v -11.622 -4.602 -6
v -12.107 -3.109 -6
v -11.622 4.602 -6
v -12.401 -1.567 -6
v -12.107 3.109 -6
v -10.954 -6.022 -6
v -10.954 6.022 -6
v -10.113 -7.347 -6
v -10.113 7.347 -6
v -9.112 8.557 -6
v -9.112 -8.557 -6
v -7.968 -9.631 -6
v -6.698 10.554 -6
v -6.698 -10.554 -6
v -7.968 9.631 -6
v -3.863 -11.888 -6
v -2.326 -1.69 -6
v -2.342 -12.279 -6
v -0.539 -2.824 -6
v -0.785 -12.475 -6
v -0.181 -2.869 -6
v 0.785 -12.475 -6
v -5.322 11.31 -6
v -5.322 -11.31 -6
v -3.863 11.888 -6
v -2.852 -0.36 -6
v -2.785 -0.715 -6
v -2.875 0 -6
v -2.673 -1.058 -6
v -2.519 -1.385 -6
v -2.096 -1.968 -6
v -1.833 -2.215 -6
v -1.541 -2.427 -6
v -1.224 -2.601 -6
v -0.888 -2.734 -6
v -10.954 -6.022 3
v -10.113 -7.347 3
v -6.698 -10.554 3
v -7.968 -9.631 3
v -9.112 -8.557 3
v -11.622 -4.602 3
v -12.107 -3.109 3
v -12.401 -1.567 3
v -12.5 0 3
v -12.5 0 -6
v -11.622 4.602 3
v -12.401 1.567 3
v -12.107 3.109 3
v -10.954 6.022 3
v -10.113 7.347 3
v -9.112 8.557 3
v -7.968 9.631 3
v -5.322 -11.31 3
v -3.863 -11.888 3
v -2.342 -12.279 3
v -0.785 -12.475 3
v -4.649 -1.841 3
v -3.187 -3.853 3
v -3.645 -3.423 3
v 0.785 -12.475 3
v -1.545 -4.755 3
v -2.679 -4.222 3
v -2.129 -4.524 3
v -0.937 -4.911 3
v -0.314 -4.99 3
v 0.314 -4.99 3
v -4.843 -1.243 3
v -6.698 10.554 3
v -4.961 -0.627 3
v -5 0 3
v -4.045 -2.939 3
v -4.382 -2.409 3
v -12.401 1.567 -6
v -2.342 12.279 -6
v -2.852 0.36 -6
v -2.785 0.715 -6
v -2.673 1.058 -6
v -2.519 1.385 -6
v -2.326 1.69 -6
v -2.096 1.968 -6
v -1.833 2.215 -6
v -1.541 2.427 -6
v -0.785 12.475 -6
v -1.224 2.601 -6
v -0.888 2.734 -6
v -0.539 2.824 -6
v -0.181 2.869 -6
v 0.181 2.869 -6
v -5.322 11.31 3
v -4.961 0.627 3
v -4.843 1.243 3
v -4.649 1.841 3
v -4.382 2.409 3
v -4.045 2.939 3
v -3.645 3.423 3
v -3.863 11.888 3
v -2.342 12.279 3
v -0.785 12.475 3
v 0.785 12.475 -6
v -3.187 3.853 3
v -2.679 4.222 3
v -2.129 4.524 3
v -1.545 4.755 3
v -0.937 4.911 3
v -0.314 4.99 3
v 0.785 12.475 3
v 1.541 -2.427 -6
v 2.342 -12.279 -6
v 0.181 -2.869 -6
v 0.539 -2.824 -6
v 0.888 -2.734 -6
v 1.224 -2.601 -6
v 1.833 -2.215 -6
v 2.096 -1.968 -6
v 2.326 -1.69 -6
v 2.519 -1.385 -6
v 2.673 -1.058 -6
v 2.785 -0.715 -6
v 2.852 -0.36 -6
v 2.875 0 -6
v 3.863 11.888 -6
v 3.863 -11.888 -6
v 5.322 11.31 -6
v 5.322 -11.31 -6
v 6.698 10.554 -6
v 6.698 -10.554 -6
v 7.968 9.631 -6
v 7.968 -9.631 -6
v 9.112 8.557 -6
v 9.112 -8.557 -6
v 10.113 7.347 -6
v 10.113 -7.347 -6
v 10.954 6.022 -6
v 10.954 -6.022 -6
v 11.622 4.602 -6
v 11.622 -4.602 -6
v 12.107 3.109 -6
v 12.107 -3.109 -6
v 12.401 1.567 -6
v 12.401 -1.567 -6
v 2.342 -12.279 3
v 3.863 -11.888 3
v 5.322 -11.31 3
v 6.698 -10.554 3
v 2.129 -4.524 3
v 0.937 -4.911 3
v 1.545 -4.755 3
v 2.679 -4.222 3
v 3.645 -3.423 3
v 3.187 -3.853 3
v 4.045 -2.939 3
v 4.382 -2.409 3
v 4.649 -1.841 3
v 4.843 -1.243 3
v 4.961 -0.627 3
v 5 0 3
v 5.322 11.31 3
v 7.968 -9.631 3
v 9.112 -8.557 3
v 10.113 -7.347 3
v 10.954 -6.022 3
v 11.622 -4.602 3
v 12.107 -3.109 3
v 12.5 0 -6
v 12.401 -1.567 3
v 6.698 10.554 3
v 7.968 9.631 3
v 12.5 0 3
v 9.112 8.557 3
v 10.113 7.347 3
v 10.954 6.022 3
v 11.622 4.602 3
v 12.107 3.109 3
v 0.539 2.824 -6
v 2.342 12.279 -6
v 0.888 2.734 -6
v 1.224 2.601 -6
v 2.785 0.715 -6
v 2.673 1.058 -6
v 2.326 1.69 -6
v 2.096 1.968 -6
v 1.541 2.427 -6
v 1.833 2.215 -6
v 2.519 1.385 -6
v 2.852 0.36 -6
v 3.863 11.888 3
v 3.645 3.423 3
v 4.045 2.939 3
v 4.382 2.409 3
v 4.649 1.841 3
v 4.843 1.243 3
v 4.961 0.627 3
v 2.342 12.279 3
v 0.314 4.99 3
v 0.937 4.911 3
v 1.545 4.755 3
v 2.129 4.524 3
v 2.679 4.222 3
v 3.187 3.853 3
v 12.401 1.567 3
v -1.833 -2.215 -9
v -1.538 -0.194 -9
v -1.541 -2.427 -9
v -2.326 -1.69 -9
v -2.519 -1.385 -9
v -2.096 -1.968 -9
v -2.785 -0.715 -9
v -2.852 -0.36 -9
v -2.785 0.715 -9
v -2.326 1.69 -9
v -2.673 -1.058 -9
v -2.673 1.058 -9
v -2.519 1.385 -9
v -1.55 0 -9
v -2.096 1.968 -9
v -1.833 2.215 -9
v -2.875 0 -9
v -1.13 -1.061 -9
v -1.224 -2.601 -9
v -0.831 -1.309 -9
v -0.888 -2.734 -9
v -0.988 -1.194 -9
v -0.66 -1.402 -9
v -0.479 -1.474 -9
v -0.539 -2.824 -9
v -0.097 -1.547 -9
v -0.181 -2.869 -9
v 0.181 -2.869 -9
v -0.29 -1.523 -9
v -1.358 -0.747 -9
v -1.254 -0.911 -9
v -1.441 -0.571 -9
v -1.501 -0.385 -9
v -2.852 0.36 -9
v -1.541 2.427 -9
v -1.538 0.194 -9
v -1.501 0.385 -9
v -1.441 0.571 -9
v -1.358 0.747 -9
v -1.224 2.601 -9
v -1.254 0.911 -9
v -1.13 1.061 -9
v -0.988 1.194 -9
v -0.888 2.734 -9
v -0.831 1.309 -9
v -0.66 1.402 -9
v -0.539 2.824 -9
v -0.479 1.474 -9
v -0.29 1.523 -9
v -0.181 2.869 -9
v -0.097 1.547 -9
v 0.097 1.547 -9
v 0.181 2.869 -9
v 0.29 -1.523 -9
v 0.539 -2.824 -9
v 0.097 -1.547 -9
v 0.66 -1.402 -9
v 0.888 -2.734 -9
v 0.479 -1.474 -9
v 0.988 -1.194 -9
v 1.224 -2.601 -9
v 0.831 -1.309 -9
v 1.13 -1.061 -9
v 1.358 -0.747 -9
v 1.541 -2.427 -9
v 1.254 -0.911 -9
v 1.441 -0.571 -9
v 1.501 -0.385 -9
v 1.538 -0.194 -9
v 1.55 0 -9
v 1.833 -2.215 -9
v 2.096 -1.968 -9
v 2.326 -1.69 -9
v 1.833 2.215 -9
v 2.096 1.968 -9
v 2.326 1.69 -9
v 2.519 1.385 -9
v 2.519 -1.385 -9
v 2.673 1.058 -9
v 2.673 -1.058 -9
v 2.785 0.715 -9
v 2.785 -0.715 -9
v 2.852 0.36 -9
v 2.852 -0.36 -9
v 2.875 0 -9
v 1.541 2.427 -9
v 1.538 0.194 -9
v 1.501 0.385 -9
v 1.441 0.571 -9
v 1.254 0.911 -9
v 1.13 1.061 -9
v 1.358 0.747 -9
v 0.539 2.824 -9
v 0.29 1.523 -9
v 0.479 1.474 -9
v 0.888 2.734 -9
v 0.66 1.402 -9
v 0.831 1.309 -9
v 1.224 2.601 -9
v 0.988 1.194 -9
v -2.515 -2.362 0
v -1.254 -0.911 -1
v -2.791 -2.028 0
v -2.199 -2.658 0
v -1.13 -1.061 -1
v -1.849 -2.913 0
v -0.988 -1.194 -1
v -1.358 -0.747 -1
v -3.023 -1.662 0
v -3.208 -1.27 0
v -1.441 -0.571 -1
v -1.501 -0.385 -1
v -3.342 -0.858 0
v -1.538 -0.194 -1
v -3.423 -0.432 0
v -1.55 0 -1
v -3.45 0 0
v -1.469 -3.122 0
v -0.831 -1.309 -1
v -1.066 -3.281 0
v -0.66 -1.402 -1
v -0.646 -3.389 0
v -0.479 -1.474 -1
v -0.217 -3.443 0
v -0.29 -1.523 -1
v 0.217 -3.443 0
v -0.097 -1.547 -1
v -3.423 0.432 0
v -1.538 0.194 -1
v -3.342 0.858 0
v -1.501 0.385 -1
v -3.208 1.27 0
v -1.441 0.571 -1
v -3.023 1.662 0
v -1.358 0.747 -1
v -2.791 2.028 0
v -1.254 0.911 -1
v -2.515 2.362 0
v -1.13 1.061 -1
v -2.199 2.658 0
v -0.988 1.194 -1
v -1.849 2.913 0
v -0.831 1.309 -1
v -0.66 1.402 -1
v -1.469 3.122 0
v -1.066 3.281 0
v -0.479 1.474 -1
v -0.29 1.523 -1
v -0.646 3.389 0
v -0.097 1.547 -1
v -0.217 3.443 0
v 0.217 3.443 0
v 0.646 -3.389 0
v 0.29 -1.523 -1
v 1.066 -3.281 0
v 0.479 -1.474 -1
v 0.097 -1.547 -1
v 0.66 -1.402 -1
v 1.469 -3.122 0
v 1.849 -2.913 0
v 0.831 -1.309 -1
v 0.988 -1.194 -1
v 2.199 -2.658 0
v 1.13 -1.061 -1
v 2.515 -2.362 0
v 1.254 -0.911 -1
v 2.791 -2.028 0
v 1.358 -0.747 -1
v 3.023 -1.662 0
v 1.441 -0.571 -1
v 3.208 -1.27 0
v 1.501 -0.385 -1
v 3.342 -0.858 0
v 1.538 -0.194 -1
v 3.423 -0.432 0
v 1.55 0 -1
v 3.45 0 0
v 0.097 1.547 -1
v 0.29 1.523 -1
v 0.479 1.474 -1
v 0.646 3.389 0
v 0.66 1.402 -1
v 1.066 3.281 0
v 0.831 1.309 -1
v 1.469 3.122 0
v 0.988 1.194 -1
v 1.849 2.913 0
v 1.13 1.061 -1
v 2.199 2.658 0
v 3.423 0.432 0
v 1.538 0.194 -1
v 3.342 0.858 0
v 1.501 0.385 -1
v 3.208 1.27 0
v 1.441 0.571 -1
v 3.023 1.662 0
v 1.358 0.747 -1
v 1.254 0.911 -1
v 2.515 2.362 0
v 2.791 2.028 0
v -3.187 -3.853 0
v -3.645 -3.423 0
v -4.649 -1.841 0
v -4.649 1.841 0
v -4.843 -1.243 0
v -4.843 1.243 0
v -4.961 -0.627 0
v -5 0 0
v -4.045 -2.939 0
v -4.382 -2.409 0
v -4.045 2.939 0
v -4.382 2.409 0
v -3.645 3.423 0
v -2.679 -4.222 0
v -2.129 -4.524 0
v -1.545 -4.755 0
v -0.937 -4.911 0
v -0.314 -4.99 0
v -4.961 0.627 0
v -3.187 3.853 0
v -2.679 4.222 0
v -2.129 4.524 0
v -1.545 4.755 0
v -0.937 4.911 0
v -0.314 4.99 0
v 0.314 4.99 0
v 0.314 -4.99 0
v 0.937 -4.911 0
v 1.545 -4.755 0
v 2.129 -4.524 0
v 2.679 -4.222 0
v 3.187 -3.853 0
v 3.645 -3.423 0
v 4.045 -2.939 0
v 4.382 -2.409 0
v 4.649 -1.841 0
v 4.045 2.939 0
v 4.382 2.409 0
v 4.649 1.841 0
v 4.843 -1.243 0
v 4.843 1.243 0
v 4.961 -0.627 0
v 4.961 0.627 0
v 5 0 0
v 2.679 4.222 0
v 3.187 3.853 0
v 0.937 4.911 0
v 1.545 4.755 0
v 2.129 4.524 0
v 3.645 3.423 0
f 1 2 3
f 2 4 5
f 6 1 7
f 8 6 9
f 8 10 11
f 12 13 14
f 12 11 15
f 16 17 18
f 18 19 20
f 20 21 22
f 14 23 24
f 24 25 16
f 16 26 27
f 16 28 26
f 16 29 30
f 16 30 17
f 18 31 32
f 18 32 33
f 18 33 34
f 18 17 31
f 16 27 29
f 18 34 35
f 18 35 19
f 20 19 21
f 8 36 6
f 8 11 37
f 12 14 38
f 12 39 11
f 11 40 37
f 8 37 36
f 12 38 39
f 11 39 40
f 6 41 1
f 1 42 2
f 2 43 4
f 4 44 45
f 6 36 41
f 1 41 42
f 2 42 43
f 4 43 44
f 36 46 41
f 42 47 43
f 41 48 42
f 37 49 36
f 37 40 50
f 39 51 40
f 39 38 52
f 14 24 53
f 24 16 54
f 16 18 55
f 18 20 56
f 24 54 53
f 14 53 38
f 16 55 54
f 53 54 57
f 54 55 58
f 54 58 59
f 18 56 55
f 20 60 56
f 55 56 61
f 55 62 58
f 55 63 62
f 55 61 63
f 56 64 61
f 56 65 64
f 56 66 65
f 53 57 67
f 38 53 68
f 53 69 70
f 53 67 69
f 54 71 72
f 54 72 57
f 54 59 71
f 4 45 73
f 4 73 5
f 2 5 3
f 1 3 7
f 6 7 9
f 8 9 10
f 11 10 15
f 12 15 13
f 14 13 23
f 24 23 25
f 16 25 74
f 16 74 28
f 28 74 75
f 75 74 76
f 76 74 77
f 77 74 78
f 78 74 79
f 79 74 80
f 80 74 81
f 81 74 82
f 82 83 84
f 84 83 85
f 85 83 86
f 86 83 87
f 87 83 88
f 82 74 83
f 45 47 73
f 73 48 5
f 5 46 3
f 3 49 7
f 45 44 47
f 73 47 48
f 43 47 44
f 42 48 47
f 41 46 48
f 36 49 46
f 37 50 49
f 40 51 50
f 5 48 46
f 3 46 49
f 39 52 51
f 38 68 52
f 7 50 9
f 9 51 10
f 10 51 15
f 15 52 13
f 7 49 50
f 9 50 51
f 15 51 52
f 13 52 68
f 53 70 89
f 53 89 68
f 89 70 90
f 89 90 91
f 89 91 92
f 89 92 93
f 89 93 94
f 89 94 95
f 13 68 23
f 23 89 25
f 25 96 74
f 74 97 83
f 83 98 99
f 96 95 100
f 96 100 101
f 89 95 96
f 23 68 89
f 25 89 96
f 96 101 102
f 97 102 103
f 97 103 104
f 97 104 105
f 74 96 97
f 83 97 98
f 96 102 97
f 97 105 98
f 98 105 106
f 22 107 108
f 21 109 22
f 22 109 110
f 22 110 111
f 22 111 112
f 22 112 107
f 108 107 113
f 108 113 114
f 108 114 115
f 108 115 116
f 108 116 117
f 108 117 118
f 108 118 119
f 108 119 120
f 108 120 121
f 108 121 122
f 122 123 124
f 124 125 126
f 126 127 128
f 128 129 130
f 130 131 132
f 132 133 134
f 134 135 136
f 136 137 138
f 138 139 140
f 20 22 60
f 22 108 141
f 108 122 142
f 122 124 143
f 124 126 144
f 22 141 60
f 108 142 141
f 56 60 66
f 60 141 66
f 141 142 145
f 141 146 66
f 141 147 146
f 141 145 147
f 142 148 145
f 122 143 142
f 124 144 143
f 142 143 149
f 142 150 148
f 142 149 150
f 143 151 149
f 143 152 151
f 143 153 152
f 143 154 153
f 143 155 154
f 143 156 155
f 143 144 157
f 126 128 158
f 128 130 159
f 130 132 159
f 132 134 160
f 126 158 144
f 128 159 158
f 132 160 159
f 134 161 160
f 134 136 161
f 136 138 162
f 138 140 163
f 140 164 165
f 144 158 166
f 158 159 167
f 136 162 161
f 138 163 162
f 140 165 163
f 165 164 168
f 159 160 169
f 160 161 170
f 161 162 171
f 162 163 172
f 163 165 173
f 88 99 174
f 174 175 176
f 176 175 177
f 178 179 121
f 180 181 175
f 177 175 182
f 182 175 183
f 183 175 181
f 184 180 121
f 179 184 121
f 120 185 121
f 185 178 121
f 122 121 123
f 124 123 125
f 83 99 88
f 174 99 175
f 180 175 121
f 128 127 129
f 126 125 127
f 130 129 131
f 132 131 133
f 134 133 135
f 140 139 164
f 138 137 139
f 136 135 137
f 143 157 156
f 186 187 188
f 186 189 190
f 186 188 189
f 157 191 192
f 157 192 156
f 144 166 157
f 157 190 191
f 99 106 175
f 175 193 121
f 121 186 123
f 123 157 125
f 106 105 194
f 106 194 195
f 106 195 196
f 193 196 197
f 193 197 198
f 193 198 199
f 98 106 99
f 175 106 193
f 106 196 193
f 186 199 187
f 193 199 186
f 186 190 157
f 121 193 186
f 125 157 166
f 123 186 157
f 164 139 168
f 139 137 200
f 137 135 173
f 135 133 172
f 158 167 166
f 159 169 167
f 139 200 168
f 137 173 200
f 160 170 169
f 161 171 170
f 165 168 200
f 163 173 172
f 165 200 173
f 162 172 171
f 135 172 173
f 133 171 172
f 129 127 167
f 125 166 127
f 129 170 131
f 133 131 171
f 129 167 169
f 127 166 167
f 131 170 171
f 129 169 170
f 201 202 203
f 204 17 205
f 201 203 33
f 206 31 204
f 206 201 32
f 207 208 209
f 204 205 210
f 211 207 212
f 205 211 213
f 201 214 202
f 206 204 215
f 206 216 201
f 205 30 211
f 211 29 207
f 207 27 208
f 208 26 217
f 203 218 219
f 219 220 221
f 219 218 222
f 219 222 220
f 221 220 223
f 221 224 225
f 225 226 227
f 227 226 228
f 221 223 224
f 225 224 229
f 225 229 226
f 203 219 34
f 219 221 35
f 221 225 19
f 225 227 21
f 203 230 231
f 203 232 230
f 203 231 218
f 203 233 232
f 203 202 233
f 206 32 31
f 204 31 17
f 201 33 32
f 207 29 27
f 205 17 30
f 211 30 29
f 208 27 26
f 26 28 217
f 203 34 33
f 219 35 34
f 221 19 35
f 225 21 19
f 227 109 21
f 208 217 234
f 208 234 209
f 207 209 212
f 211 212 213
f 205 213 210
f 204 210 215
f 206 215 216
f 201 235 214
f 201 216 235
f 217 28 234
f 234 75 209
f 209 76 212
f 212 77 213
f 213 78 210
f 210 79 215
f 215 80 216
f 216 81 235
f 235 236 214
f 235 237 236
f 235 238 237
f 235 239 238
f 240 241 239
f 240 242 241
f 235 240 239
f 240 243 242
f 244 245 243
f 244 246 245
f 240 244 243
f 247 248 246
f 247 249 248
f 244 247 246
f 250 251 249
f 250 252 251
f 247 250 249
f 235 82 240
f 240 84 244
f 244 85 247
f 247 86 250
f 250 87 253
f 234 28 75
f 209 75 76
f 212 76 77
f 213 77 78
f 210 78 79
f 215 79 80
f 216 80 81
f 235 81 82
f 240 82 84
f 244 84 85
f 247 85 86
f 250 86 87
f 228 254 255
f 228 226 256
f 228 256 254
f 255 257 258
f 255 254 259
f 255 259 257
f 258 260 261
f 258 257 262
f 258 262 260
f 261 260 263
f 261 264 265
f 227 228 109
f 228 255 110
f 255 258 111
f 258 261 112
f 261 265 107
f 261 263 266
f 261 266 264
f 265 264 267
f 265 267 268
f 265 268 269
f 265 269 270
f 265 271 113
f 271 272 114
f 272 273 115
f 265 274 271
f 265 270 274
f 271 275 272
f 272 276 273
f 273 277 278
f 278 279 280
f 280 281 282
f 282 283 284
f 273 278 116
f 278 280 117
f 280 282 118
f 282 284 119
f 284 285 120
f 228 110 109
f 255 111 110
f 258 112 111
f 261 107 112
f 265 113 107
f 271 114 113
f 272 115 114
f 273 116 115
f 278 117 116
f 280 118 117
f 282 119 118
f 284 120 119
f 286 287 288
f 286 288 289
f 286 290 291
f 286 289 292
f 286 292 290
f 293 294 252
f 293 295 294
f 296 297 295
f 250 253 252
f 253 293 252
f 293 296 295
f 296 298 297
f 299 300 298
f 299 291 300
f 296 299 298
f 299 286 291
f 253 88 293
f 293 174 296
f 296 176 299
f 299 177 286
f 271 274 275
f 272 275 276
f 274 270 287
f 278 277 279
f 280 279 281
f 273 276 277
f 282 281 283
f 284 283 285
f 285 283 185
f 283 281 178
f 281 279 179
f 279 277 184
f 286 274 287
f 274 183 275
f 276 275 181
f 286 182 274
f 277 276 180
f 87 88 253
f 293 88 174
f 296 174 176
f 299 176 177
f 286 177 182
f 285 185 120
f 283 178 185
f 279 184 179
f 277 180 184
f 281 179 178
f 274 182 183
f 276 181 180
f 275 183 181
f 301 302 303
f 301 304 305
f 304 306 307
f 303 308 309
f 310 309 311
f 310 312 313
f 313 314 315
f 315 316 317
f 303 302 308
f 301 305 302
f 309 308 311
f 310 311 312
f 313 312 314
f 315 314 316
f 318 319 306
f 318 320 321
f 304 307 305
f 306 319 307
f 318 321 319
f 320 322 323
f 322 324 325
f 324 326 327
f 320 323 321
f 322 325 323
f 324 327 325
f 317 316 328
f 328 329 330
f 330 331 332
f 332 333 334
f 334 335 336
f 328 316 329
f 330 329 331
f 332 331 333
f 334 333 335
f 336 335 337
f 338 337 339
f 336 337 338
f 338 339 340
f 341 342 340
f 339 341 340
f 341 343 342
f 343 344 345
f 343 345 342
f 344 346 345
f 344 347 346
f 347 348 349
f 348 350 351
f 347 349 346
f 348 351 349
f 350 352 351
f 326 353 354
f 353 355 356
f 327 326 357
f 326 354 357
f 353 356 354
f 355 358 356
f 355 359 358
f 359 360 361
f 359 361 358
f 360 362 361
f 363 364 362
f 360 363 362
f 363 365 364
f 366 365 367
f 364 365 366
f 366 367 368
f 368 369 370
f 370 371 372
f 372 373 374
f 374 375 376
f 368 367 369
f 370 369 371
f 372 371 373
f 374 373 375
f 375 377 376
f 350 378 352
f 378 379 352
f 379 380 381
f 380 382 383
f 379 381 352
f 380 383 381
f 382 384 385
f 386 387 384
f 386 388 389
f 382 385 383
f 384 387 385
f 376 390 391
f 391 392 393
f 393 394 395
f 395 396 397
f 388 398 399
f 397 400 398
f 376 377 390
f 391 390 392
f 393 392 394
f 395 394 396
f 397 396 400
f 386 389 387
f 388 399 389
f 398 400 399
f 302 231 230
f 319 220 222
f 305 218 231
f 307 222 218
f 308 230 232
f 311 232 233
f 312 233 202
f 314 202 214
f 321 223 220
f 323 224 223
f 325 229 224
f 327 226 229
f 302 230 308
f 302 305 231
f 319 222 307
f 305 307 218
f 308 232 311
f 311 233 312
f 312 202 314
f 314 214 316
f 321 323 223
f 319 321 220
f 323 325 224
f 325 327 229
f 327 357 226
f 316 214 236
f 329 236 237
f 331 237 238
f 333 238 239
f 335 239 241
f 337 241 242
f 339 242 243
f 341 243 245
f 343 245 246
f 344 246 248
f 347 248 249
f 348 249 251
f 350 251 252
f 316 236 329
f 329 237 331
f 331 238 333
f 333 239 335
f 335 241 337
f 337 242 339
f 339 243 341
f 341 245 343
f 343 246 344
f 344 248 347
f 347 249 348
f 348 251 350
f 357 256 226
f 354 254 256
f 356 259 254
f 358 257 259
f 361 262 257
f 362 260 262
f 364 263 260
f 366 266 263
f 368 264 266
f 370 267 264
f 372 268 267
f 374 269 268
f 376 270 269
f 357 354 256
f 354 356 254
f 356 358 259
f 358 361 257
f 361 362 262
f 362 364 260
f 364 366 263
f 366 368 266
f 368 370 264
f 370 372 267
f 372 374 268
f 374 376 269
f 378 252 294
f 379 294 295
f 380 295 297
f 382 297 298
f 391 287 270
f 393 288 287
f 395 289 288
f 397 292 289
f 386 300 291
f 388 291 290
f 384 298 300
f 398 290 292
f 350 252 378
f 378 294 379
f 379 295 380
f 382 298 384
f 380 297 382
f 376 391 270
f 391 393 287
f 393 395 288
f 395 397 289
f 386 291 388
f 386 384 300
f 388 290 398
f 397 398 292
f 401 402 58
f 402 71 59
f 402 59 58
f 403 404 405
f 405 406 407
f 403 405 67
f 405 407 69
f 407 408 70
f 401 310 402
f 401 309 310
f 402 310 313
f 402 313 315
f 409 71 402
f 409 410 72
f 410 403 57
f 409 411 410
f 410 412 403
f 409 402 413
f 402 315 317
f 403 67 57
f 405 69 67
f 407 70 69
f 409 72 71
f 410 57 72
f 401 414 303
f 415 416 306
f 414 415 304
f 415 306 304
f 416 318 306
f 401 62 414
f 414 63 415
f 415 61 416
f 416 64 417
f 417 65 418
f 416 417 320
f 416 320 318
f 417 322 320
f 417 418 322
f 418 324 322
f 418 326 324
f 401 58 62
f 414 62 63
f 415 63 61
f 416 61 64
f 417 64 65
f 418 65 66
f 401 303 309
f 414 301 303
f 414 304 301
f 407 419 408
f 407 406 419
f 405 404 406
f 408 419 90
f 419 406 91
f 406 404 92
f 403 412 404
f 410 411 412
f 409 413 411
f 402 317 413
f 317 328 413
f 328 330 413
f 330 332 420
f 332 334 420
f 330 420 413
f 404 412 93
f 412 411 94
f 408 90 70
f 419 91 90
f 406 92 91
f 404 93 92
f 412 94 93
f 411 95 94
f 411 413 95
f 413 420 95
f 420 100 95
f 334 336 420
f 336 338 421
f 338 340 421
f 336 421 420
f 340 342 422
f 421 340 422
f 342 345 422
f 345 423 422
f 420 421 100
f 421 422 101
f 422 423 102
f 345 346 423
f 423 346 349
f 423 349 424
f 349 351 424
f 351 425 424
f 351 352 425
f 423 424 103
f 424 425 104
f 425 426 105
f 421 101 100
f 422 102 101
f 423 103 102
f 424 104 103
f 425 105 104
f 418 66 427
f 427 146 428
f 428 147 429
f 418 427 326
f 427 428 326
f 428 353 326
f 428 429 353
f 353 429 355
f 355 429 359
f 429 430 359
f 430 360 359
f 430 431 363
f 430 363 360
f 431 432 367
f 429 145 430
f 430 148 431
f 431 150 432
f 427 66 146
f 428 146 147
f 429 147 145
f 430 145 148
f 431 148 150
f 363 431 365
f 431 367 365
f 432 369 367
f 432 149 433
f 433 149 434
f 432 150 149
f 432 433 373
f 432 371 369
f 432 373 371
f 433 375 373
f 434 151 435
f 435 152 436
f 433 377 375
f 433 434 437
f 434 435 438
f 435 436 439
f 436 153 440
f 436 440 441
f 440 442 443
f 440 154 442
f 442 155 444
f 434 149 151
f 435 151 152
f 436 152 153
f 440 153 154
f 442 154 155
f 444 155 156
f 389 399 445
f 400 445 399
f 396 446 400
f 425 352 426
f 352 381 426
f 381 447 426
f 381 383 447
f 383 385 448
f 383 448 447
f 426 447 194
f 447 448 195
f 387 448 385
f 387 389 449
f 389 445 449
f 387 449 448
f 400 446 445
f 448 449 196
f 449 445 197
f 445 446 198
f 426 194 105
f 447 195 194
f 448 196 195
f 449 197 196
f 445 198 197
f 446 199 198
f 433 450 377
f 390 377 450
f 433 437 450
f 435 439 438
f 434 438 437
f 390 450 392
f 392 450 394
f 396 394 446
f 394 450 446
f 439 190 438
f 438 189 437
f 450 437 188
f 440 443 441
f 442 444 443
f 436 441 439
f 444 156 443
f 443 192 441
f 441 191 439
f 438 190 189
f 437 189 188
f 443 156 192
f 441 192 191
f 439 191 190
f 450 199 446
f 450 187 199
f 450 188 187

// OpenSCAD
$fn = 50;


difference() {
	union() {
		translate(v = [0, 0, -6.0000000000]) {
			cylinder(h = 9, r = 12.5000000000);
		}
		#translate(v = [0, 0, -9.0000000000]) {
			cylinder(h = 9, r = 2.8750000000);
		}
	}
	union() {
		translate(v = [0, 0, 0]) {
			rotate(a = [0, 0, 0]) {
				difference() {
					union() {
						translate(v = [0, 0, -9.0000000000]) {
							cylinder(h = 9, r = 1.2500000000);
						}
						translate(v = [0, 0, -1.0000000000]) {
							cylinder(h = 1.0000000000, r1 = 1.5500000000, r2 = 3.4500000000);
						}
						translate(v = [0, 0, -9.0000000000]) {
							cylinder(h = 9, r = 1.5500000000);
						}
						translate(v = [0, 0, -9.0000000000]) {
							cylinder(h = 9, r = 1.2500000000);
						}
					}
					union();
				}
			}
		}
		#cylinder(h = 3, r = 5.0000000000);
	}
}
